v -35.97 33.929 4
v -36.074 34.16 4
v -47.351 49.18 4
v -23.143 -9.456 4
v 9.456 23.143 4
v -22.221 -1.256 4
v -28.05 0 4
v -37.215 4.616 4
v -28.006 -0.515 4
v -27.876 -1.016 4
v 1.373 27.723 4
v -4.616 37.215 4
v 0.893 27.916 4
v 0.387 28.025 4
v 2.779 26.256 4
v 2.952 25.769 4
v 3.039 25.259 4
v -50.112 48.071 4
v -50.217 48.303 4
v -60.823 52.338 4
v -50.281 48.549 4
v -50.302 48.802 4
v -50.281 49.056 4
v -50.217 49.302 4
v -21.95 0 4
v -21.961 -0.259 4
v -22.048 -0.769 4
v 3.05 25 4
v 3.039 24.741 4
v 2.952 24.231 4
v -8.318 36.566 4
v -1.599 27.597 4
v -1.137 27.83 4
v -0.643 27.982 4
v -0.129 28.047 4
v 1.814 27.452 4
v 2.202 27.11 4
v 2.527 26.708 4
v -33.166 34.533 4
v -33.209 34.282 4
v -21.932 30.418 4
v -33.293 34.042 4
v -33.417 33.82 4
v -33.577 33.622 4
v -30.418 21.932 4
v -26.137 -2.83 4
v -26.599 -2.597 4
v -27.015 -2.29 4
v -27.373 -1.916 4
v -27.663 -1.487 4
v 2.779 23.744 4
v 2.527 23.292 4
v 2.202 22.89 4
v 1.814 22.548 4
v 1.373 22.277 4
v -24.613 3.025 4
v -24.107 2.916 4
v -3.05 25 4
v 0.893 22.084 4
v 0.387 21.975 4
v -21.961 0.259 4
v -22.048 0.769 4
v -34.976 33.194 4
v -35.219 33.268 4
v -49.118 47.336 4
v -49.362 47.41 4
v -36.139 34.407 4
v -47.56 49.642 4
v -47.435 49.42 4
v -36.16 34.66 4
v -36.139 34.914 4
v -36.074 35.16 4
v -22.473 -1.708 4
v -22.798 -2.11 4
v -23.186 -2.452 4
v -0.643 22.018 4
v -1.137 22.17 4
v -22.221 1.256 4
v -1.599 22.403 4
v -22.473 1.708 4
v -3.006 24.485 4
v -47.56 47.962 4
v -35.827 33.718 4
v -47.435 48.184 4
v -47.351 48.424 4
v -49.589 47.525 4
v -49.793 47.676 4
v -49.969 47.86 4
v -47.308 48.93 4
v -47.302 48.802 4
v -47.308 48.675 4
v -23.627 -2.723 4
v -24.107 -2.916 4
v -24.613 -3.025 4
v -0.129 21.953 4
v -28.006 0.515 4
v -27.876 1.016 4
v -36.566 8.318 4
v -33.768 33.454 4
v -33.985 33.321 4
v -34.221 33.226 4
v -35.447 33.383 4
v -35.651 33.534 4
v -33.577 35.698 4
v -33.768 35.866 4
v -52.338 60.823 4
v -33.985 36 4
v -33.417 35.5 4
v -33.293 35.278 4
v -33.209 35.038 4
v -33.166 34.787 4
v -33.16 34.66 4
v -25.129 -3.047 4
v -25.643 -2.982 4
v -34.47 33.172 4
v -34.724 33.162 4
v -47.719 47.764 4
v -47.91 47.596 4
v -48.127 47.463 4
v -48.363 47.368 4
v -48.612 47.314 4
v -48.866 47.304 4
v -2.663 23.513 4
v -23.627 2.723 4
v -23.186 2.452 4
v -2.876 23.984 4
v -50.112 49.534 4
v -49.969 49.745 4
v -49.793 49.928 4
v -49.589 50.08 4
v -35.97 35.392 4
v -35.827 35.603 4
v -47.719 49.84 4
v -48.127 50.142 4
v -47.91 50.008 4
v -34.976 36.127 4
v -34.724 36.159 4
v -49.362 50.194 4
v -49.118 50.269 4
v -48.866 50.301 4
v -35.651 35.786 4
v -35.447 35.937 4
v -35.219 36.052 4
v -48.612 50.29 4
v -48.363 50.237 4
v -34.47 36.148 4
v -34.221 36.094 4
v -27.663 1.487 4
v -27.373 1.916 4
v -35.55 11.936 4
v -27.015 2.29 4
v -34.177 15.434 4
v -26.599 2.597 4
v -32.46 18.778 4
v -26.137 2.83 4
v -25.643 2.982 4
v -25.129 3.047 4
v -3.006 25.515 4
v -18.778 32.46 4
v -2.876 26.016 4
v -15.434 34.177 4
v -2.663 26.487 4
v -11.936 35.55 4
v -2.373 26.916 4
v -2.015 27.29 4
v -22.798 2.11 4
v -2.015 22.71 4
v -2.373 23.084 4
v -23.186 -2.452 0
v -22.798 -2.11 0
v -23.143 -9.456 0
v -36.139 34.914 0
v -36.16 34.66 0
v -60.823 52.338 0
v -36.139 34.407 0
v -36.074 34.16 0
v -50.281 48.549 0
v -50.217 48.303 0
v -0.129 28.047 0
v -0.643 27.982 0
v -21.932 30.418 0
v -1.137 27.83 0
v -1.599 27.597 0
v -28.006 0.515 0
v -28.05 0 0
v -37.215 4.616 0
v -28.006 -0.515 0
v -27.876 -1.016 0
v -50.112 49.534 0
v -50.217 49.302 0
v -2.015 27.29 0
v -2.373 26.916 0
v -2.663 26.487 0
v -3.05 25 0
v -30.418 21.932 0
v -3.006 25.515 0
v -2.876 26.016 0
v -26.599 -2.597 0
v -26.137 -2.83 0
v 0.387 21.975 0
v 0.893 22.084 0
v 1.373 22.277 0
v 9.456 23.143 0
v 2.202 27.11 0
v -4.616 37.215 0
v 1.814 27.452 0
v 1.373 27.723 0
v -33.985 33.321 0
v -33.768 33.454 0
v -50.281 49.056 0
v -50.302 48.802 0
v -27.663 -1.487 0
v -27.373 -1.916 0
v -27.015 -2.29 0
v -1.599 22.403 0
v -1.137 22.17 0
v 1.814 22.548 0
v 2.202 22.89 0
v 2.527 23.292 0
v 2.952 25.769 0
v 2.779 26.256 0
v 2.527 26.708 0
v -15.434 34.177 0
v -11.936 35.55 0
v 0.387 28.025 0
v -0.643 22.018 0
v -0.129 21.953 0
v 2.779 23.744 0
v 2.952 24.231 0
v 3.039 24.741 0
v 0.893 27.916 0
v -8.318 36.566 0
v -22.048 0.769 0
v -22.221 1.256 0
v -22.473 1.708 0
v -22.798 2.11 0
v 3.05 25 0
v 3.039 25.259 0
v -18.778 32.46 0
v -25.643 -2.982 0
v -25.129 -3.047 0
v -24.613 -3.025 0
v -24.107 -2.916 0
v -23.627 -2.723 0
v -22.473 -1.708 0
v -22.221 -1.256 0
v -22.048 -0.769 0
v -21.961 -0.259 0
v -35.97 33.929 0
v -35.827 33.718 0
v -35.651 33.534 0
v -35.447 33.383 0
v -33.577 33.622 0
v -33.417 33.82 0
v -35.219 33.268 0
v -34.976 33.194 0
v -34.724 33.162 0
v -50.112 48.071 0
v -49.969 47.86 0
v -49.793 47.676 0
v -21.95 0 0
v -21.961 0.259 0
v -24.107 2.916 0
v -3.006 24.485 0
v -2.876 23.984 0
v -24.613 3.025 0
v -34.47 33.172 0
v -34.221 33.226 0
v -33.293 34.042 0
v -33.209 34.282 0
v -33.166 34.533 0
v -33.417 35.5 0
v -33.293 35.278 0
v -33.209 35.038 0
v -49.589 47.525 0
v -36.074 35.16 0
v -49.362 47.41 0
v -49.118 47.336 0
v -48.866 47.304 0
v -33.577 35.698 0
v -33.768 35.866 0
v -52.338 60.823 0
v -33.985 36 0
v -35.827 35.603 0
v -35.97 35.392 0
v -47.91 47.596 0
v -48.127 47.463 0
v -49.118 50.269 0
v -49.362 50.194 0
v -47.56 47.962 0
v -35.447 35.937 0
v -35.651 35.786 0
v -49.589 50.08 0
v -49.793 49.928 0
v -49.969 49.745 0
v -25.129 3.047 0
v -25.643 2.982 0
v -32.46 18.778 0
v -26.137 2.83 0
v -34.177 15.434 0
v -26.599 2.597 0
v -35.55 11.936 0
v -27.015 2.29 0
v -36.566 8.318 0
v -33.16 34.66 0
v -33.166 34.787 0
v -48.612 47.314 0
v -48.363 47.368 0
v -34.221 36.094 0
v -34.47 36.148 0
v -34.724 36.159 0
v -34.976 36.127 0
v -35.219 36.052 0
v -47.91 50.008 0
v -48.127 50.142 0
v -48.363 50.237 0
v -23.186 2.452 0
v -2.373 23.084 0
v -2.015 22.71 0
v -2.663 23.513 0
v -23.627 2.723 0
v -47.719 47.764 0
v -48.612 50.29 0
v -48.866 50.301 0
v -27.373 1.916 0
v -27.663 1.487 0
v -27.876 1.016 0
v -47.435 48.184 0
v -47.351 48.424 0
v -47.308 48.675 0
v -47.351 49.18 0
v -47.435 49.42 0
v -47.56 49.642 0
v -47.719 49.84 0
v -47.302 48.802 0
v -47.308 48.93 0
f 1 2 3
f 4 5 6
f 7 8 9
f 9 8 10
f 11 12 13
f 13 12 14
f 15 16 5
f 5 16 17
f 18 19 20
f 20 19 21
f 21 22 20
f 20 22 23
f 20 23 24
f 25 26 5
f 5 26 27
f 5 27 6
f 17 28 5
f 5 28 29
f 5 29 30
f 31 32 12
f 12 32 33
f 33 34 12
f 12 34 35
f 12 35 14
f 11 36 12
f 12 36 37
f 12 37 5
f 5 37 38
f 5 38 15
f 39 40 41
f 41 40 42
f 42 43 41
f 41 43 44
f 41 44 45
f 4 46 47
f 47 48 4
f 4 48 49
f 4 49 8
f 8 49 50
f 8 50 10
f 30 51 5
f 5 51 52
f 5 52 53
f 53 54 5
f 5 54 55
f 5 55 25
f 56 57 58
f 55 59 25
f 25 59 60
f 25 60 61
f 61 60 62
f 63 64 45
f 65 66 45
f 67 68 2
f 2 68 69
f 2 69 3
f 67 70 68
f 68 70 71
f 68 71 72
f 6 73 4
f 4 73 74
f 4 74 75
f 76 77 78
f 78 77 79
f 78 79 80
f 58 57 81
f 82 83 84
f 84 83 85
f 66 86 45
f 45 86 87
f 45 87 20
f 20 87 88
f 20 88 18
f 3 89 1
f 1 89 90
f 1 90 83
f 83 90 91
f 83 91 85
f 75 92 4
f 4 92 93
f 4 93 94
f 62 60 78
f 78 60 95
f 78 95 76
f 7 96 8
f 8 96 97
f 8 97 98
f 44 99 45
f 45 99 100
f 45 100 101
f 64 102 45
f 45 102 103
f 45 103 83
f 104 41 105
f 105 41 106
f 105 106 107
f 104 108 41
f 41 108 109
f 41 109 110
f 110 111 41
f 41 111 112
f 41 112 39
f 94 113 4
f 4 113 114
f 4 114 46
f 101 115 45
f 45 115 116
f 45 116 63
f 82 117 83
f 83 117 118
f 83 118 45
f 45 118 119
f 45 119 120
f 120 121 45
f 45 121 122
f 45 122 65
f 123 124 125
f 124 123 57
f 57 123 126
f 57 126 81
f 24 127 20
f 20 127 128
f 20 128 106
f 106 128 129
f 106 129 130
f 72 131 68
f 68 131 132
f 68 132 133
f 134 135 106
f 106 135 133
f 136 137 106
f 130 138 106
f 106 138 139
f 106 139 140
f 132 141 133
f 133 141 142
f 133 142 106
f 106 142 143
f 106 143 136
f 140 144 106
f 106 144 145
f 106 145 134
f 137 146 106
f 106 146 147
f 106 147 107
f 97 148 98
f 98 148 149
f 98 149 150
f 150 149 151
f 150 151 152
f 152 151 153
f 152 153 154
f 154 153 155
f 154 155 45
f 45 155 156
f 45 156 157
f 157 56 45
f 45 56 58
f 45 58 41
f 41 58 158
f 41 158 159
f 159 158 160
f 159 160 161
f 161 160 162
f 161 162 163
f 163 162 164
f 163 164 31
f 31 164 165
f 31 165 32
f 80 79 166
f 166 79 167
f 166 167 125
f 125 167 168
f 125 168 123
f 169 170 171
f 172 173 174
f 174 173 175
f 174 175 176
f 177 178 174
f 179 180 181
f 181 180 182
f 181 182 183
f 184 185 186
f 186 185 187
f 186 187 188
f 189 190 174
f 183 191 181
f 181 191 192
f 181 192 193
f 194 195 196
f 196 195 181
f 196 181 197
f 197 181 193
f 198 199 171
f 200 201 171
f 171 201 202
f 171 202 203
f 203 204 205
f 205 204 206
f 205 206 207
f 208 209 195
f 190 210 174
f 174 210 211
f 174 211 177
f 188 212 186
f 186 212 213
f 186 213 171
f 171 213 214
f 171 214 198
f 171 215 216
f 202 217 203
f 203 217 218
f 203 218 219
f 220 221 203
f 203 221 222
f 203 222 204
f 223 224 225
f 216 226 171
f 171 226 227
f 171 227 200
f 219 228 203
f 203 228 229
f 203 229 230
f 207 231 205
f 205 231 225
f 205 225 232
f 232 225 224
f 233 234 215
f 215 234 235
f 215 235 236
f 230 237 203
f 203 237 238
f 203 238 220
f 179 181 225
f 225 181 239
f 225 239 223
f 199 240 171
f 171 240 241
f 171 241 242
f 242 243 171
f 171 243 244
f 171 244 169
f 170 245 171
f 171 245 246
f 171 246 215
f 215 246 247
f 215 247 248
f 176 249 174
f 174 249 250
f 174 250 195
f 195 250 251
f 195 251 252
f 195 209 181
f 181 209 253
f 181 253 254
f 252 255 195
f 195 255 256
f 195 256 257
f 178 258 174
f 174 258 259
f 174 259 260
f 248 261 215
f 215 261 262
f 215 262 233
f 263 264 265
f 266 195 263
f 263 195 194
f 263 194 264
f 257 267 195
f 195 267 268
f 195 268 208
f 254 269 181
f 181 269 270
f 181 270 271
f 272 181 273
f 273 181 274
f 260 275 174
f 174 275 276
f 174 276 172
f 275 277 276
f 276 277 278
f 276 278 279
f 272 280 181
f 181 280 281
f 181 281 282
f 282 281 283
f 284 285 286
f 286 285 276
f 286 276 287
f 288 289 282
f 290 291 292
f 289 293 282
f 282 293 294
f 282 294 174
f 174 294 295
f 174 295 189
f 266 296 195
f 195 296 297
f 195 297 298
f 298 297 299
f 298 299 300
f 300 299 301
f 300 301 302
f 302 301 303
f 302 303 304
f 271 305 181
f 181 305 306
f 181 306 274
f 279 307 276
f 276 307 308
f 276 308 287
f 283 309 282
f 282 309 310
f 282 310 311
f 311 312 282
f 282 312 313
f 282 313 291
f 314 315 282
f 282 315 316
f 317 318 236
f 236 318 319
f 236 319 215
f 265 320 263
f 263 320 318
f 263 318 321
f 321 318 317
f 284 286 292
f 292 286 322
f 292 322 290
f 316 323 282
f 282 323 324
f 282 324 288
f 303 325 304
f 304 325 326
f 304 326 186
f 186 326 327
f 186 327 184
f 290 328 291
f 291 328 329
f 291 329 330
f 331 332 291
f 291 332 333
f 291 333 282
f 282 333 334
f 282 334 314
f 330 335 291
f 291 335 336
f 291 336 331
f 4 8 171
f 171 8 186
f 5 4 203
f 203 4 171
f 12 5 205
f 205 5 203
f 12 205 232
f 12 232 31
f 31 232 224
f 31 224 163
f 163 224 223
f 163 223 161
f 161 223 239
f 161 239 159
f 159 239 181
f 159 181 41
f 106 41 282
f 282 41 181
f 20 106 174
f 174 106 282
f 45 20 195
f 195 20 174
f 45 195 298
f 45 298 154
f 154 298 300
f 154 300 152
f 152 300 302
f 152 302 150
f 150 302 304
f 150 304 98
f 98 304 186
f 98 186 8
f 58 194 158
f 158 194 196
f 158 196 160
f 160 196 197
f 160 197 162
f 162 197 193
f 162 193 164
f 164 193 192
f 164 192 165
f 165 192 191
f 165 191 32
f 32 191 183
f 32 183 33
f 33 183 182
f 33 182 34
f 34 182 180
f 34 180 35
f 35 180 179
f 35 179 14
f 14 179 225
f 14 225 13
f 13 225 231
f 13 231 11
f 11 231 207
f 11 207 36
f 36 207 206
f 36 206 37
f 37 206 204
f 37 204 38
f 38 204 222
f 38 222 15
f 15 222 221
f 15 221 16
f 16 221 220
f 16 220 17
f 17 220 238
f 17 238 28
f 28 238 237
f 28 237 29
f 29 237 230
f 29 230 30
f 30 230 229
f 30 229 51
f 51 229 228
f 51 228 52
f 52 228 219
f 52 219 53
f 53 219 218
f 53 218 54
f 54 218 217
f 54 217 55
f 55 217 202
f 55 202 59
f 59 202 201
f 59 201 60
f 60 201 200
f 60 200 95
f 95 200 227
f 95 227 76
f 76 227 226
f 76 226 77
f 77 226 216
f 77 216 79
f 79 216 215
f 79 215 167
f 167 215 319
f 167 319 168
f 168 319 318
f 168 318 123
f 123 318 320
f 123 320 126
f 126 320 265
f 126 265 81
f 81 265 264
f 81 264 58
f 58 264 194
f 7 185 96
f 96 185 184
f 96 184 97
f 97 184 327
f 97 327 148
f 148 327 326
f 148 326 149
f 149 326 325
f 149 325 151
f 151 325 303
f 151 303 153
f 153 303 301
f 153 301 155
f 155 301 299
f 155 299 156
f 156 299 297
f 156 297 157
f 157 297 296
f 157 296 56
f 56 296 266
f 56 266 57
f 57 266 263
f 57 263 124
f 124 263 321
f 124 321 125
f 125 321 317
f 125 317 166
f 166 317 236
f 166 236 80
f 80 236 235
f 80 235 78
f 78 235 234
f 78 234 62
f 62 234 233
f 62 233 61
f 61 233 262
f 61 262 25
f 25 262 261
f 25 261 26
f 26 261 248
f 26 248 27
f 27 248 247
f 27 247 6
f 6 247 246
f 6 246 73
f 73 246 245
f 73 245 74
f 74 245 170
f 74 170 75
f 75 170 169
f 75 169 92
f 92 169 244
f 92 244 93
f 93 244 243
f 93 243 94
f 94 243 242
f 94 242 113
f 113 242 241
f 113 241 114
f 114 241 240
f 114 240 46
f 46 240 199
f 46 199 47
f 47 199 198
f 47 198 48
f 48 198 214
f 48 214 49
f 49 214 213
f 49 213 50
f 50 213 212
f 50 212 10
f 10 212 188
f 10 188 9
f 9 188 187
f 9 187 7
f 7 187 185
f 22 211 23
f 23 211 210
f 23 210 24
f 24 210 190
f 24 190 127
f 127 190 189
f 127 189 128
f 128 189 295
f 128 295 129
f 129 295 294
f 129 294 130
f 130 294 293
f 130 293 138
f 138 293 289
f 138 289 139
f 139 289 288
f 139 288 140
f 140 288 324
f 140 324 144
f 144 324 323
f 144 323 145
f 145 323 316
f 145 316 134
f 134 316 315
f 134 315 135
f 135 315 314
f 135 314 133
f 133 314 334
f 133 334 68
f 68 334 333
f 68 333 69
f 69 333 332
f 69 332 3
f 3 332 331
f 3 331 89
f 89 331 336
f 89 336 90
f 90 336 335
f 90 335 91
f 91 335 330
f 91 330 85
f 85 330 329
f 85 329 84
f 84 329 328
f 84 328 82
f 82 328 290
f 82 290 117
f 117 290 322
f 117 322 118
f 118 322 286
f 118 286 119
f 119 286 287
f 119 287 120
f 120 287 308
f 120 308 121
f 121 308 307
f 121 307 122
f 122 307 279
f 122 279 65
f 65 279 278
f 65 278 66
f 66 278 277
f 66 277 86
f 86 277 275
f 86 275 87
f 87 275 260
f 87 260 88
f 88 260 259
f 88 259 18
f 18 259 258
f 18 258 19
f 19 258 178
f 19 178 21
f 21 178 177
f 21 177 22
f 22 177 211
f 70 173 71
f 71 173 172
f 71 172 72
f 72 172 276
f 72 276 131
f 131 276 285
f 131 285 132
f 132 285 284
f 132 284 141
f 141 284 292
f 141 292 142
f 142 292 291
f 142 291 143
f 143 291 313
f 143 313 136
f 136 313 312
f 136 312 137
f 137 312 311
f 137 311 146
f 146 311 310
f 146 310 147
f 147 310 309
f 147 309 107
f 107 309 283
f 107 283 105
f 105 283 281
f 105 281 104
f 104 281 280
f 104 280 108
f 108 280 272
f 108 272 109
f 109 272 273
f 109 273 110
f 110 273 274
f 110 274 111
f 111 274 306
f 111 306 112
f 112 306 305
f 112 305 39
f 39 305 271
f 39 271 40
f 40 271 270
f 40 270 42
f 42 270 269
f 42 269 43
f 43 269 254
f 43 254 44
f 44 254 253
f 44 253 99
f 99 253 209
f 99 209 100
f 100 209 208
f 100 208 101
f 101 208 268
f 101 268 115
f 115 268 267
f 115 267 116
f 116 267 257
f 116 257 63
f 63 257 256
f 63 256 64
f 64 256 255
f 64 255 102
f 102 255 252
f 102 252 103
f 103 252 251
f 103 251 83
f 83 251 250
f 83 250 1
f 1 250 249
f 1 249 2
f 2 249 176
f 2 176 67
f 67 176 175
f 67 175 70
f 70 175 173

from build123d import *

# Parameters (mm, degrees)
SKETCH2_R           = 3.05
SKETCH2_R_2         = 1.5
BOSS_EXTRUDE1_DEPTH = 4


with BuildPart() as part:
    # Sketch2 → Boss-Extrude1 (new body)
    with BuildSketch(Plane.XY):
        with BuildLine():
            Line((-23.142573846, -9.456282345), (9.456282345, 23.142573846))
            Line((9.456282345, 23.142573846), (-4.615964413, 37.214820603))
            ThreePointArc((-4.615964413, 37.214820603), (-13.702289069, 34.906980309), (-21.932251863, 30.417533237))
            Line((-21.932251863, 30.417533237), (-52.337843454, 60.823124828))
            Line((-52.337843454, 60.823124828), (-60.823124828, 52.337843454))
            Line((-60.823124828, 52.337843454), (-30.417533237, 21.932251863))
            ThreePointArc((-30.417533237, 21.932251863), (-34.906980309, 13.702289069), (-37.214820603, 4.615964413))
            Line((-37.214820603, 4.615964413), (-23.142573846, -9.456282345))
        make_face()
        with Locations((0, 25)):
            Circle(SKETCH2_R, mode=Mode.SUBTRACT)
        with Locations((-25, 0)):
            Circle(SKETCH2_R, mode=Mode.SUBTRACT)
        with Locations((-48.802309548, 48.802309548)):
            Circle(SKETCH2_R_2, mode=Mode.SUBTRACT)
        with Locations((-34.660173924, 34.660173924)):
            Circle(SKETCH2_R_2, mode=Mode.SUBTRACT)
    extrude(amount=BOSS_EXTRUDE1_DEPTH)


solid = part.part
